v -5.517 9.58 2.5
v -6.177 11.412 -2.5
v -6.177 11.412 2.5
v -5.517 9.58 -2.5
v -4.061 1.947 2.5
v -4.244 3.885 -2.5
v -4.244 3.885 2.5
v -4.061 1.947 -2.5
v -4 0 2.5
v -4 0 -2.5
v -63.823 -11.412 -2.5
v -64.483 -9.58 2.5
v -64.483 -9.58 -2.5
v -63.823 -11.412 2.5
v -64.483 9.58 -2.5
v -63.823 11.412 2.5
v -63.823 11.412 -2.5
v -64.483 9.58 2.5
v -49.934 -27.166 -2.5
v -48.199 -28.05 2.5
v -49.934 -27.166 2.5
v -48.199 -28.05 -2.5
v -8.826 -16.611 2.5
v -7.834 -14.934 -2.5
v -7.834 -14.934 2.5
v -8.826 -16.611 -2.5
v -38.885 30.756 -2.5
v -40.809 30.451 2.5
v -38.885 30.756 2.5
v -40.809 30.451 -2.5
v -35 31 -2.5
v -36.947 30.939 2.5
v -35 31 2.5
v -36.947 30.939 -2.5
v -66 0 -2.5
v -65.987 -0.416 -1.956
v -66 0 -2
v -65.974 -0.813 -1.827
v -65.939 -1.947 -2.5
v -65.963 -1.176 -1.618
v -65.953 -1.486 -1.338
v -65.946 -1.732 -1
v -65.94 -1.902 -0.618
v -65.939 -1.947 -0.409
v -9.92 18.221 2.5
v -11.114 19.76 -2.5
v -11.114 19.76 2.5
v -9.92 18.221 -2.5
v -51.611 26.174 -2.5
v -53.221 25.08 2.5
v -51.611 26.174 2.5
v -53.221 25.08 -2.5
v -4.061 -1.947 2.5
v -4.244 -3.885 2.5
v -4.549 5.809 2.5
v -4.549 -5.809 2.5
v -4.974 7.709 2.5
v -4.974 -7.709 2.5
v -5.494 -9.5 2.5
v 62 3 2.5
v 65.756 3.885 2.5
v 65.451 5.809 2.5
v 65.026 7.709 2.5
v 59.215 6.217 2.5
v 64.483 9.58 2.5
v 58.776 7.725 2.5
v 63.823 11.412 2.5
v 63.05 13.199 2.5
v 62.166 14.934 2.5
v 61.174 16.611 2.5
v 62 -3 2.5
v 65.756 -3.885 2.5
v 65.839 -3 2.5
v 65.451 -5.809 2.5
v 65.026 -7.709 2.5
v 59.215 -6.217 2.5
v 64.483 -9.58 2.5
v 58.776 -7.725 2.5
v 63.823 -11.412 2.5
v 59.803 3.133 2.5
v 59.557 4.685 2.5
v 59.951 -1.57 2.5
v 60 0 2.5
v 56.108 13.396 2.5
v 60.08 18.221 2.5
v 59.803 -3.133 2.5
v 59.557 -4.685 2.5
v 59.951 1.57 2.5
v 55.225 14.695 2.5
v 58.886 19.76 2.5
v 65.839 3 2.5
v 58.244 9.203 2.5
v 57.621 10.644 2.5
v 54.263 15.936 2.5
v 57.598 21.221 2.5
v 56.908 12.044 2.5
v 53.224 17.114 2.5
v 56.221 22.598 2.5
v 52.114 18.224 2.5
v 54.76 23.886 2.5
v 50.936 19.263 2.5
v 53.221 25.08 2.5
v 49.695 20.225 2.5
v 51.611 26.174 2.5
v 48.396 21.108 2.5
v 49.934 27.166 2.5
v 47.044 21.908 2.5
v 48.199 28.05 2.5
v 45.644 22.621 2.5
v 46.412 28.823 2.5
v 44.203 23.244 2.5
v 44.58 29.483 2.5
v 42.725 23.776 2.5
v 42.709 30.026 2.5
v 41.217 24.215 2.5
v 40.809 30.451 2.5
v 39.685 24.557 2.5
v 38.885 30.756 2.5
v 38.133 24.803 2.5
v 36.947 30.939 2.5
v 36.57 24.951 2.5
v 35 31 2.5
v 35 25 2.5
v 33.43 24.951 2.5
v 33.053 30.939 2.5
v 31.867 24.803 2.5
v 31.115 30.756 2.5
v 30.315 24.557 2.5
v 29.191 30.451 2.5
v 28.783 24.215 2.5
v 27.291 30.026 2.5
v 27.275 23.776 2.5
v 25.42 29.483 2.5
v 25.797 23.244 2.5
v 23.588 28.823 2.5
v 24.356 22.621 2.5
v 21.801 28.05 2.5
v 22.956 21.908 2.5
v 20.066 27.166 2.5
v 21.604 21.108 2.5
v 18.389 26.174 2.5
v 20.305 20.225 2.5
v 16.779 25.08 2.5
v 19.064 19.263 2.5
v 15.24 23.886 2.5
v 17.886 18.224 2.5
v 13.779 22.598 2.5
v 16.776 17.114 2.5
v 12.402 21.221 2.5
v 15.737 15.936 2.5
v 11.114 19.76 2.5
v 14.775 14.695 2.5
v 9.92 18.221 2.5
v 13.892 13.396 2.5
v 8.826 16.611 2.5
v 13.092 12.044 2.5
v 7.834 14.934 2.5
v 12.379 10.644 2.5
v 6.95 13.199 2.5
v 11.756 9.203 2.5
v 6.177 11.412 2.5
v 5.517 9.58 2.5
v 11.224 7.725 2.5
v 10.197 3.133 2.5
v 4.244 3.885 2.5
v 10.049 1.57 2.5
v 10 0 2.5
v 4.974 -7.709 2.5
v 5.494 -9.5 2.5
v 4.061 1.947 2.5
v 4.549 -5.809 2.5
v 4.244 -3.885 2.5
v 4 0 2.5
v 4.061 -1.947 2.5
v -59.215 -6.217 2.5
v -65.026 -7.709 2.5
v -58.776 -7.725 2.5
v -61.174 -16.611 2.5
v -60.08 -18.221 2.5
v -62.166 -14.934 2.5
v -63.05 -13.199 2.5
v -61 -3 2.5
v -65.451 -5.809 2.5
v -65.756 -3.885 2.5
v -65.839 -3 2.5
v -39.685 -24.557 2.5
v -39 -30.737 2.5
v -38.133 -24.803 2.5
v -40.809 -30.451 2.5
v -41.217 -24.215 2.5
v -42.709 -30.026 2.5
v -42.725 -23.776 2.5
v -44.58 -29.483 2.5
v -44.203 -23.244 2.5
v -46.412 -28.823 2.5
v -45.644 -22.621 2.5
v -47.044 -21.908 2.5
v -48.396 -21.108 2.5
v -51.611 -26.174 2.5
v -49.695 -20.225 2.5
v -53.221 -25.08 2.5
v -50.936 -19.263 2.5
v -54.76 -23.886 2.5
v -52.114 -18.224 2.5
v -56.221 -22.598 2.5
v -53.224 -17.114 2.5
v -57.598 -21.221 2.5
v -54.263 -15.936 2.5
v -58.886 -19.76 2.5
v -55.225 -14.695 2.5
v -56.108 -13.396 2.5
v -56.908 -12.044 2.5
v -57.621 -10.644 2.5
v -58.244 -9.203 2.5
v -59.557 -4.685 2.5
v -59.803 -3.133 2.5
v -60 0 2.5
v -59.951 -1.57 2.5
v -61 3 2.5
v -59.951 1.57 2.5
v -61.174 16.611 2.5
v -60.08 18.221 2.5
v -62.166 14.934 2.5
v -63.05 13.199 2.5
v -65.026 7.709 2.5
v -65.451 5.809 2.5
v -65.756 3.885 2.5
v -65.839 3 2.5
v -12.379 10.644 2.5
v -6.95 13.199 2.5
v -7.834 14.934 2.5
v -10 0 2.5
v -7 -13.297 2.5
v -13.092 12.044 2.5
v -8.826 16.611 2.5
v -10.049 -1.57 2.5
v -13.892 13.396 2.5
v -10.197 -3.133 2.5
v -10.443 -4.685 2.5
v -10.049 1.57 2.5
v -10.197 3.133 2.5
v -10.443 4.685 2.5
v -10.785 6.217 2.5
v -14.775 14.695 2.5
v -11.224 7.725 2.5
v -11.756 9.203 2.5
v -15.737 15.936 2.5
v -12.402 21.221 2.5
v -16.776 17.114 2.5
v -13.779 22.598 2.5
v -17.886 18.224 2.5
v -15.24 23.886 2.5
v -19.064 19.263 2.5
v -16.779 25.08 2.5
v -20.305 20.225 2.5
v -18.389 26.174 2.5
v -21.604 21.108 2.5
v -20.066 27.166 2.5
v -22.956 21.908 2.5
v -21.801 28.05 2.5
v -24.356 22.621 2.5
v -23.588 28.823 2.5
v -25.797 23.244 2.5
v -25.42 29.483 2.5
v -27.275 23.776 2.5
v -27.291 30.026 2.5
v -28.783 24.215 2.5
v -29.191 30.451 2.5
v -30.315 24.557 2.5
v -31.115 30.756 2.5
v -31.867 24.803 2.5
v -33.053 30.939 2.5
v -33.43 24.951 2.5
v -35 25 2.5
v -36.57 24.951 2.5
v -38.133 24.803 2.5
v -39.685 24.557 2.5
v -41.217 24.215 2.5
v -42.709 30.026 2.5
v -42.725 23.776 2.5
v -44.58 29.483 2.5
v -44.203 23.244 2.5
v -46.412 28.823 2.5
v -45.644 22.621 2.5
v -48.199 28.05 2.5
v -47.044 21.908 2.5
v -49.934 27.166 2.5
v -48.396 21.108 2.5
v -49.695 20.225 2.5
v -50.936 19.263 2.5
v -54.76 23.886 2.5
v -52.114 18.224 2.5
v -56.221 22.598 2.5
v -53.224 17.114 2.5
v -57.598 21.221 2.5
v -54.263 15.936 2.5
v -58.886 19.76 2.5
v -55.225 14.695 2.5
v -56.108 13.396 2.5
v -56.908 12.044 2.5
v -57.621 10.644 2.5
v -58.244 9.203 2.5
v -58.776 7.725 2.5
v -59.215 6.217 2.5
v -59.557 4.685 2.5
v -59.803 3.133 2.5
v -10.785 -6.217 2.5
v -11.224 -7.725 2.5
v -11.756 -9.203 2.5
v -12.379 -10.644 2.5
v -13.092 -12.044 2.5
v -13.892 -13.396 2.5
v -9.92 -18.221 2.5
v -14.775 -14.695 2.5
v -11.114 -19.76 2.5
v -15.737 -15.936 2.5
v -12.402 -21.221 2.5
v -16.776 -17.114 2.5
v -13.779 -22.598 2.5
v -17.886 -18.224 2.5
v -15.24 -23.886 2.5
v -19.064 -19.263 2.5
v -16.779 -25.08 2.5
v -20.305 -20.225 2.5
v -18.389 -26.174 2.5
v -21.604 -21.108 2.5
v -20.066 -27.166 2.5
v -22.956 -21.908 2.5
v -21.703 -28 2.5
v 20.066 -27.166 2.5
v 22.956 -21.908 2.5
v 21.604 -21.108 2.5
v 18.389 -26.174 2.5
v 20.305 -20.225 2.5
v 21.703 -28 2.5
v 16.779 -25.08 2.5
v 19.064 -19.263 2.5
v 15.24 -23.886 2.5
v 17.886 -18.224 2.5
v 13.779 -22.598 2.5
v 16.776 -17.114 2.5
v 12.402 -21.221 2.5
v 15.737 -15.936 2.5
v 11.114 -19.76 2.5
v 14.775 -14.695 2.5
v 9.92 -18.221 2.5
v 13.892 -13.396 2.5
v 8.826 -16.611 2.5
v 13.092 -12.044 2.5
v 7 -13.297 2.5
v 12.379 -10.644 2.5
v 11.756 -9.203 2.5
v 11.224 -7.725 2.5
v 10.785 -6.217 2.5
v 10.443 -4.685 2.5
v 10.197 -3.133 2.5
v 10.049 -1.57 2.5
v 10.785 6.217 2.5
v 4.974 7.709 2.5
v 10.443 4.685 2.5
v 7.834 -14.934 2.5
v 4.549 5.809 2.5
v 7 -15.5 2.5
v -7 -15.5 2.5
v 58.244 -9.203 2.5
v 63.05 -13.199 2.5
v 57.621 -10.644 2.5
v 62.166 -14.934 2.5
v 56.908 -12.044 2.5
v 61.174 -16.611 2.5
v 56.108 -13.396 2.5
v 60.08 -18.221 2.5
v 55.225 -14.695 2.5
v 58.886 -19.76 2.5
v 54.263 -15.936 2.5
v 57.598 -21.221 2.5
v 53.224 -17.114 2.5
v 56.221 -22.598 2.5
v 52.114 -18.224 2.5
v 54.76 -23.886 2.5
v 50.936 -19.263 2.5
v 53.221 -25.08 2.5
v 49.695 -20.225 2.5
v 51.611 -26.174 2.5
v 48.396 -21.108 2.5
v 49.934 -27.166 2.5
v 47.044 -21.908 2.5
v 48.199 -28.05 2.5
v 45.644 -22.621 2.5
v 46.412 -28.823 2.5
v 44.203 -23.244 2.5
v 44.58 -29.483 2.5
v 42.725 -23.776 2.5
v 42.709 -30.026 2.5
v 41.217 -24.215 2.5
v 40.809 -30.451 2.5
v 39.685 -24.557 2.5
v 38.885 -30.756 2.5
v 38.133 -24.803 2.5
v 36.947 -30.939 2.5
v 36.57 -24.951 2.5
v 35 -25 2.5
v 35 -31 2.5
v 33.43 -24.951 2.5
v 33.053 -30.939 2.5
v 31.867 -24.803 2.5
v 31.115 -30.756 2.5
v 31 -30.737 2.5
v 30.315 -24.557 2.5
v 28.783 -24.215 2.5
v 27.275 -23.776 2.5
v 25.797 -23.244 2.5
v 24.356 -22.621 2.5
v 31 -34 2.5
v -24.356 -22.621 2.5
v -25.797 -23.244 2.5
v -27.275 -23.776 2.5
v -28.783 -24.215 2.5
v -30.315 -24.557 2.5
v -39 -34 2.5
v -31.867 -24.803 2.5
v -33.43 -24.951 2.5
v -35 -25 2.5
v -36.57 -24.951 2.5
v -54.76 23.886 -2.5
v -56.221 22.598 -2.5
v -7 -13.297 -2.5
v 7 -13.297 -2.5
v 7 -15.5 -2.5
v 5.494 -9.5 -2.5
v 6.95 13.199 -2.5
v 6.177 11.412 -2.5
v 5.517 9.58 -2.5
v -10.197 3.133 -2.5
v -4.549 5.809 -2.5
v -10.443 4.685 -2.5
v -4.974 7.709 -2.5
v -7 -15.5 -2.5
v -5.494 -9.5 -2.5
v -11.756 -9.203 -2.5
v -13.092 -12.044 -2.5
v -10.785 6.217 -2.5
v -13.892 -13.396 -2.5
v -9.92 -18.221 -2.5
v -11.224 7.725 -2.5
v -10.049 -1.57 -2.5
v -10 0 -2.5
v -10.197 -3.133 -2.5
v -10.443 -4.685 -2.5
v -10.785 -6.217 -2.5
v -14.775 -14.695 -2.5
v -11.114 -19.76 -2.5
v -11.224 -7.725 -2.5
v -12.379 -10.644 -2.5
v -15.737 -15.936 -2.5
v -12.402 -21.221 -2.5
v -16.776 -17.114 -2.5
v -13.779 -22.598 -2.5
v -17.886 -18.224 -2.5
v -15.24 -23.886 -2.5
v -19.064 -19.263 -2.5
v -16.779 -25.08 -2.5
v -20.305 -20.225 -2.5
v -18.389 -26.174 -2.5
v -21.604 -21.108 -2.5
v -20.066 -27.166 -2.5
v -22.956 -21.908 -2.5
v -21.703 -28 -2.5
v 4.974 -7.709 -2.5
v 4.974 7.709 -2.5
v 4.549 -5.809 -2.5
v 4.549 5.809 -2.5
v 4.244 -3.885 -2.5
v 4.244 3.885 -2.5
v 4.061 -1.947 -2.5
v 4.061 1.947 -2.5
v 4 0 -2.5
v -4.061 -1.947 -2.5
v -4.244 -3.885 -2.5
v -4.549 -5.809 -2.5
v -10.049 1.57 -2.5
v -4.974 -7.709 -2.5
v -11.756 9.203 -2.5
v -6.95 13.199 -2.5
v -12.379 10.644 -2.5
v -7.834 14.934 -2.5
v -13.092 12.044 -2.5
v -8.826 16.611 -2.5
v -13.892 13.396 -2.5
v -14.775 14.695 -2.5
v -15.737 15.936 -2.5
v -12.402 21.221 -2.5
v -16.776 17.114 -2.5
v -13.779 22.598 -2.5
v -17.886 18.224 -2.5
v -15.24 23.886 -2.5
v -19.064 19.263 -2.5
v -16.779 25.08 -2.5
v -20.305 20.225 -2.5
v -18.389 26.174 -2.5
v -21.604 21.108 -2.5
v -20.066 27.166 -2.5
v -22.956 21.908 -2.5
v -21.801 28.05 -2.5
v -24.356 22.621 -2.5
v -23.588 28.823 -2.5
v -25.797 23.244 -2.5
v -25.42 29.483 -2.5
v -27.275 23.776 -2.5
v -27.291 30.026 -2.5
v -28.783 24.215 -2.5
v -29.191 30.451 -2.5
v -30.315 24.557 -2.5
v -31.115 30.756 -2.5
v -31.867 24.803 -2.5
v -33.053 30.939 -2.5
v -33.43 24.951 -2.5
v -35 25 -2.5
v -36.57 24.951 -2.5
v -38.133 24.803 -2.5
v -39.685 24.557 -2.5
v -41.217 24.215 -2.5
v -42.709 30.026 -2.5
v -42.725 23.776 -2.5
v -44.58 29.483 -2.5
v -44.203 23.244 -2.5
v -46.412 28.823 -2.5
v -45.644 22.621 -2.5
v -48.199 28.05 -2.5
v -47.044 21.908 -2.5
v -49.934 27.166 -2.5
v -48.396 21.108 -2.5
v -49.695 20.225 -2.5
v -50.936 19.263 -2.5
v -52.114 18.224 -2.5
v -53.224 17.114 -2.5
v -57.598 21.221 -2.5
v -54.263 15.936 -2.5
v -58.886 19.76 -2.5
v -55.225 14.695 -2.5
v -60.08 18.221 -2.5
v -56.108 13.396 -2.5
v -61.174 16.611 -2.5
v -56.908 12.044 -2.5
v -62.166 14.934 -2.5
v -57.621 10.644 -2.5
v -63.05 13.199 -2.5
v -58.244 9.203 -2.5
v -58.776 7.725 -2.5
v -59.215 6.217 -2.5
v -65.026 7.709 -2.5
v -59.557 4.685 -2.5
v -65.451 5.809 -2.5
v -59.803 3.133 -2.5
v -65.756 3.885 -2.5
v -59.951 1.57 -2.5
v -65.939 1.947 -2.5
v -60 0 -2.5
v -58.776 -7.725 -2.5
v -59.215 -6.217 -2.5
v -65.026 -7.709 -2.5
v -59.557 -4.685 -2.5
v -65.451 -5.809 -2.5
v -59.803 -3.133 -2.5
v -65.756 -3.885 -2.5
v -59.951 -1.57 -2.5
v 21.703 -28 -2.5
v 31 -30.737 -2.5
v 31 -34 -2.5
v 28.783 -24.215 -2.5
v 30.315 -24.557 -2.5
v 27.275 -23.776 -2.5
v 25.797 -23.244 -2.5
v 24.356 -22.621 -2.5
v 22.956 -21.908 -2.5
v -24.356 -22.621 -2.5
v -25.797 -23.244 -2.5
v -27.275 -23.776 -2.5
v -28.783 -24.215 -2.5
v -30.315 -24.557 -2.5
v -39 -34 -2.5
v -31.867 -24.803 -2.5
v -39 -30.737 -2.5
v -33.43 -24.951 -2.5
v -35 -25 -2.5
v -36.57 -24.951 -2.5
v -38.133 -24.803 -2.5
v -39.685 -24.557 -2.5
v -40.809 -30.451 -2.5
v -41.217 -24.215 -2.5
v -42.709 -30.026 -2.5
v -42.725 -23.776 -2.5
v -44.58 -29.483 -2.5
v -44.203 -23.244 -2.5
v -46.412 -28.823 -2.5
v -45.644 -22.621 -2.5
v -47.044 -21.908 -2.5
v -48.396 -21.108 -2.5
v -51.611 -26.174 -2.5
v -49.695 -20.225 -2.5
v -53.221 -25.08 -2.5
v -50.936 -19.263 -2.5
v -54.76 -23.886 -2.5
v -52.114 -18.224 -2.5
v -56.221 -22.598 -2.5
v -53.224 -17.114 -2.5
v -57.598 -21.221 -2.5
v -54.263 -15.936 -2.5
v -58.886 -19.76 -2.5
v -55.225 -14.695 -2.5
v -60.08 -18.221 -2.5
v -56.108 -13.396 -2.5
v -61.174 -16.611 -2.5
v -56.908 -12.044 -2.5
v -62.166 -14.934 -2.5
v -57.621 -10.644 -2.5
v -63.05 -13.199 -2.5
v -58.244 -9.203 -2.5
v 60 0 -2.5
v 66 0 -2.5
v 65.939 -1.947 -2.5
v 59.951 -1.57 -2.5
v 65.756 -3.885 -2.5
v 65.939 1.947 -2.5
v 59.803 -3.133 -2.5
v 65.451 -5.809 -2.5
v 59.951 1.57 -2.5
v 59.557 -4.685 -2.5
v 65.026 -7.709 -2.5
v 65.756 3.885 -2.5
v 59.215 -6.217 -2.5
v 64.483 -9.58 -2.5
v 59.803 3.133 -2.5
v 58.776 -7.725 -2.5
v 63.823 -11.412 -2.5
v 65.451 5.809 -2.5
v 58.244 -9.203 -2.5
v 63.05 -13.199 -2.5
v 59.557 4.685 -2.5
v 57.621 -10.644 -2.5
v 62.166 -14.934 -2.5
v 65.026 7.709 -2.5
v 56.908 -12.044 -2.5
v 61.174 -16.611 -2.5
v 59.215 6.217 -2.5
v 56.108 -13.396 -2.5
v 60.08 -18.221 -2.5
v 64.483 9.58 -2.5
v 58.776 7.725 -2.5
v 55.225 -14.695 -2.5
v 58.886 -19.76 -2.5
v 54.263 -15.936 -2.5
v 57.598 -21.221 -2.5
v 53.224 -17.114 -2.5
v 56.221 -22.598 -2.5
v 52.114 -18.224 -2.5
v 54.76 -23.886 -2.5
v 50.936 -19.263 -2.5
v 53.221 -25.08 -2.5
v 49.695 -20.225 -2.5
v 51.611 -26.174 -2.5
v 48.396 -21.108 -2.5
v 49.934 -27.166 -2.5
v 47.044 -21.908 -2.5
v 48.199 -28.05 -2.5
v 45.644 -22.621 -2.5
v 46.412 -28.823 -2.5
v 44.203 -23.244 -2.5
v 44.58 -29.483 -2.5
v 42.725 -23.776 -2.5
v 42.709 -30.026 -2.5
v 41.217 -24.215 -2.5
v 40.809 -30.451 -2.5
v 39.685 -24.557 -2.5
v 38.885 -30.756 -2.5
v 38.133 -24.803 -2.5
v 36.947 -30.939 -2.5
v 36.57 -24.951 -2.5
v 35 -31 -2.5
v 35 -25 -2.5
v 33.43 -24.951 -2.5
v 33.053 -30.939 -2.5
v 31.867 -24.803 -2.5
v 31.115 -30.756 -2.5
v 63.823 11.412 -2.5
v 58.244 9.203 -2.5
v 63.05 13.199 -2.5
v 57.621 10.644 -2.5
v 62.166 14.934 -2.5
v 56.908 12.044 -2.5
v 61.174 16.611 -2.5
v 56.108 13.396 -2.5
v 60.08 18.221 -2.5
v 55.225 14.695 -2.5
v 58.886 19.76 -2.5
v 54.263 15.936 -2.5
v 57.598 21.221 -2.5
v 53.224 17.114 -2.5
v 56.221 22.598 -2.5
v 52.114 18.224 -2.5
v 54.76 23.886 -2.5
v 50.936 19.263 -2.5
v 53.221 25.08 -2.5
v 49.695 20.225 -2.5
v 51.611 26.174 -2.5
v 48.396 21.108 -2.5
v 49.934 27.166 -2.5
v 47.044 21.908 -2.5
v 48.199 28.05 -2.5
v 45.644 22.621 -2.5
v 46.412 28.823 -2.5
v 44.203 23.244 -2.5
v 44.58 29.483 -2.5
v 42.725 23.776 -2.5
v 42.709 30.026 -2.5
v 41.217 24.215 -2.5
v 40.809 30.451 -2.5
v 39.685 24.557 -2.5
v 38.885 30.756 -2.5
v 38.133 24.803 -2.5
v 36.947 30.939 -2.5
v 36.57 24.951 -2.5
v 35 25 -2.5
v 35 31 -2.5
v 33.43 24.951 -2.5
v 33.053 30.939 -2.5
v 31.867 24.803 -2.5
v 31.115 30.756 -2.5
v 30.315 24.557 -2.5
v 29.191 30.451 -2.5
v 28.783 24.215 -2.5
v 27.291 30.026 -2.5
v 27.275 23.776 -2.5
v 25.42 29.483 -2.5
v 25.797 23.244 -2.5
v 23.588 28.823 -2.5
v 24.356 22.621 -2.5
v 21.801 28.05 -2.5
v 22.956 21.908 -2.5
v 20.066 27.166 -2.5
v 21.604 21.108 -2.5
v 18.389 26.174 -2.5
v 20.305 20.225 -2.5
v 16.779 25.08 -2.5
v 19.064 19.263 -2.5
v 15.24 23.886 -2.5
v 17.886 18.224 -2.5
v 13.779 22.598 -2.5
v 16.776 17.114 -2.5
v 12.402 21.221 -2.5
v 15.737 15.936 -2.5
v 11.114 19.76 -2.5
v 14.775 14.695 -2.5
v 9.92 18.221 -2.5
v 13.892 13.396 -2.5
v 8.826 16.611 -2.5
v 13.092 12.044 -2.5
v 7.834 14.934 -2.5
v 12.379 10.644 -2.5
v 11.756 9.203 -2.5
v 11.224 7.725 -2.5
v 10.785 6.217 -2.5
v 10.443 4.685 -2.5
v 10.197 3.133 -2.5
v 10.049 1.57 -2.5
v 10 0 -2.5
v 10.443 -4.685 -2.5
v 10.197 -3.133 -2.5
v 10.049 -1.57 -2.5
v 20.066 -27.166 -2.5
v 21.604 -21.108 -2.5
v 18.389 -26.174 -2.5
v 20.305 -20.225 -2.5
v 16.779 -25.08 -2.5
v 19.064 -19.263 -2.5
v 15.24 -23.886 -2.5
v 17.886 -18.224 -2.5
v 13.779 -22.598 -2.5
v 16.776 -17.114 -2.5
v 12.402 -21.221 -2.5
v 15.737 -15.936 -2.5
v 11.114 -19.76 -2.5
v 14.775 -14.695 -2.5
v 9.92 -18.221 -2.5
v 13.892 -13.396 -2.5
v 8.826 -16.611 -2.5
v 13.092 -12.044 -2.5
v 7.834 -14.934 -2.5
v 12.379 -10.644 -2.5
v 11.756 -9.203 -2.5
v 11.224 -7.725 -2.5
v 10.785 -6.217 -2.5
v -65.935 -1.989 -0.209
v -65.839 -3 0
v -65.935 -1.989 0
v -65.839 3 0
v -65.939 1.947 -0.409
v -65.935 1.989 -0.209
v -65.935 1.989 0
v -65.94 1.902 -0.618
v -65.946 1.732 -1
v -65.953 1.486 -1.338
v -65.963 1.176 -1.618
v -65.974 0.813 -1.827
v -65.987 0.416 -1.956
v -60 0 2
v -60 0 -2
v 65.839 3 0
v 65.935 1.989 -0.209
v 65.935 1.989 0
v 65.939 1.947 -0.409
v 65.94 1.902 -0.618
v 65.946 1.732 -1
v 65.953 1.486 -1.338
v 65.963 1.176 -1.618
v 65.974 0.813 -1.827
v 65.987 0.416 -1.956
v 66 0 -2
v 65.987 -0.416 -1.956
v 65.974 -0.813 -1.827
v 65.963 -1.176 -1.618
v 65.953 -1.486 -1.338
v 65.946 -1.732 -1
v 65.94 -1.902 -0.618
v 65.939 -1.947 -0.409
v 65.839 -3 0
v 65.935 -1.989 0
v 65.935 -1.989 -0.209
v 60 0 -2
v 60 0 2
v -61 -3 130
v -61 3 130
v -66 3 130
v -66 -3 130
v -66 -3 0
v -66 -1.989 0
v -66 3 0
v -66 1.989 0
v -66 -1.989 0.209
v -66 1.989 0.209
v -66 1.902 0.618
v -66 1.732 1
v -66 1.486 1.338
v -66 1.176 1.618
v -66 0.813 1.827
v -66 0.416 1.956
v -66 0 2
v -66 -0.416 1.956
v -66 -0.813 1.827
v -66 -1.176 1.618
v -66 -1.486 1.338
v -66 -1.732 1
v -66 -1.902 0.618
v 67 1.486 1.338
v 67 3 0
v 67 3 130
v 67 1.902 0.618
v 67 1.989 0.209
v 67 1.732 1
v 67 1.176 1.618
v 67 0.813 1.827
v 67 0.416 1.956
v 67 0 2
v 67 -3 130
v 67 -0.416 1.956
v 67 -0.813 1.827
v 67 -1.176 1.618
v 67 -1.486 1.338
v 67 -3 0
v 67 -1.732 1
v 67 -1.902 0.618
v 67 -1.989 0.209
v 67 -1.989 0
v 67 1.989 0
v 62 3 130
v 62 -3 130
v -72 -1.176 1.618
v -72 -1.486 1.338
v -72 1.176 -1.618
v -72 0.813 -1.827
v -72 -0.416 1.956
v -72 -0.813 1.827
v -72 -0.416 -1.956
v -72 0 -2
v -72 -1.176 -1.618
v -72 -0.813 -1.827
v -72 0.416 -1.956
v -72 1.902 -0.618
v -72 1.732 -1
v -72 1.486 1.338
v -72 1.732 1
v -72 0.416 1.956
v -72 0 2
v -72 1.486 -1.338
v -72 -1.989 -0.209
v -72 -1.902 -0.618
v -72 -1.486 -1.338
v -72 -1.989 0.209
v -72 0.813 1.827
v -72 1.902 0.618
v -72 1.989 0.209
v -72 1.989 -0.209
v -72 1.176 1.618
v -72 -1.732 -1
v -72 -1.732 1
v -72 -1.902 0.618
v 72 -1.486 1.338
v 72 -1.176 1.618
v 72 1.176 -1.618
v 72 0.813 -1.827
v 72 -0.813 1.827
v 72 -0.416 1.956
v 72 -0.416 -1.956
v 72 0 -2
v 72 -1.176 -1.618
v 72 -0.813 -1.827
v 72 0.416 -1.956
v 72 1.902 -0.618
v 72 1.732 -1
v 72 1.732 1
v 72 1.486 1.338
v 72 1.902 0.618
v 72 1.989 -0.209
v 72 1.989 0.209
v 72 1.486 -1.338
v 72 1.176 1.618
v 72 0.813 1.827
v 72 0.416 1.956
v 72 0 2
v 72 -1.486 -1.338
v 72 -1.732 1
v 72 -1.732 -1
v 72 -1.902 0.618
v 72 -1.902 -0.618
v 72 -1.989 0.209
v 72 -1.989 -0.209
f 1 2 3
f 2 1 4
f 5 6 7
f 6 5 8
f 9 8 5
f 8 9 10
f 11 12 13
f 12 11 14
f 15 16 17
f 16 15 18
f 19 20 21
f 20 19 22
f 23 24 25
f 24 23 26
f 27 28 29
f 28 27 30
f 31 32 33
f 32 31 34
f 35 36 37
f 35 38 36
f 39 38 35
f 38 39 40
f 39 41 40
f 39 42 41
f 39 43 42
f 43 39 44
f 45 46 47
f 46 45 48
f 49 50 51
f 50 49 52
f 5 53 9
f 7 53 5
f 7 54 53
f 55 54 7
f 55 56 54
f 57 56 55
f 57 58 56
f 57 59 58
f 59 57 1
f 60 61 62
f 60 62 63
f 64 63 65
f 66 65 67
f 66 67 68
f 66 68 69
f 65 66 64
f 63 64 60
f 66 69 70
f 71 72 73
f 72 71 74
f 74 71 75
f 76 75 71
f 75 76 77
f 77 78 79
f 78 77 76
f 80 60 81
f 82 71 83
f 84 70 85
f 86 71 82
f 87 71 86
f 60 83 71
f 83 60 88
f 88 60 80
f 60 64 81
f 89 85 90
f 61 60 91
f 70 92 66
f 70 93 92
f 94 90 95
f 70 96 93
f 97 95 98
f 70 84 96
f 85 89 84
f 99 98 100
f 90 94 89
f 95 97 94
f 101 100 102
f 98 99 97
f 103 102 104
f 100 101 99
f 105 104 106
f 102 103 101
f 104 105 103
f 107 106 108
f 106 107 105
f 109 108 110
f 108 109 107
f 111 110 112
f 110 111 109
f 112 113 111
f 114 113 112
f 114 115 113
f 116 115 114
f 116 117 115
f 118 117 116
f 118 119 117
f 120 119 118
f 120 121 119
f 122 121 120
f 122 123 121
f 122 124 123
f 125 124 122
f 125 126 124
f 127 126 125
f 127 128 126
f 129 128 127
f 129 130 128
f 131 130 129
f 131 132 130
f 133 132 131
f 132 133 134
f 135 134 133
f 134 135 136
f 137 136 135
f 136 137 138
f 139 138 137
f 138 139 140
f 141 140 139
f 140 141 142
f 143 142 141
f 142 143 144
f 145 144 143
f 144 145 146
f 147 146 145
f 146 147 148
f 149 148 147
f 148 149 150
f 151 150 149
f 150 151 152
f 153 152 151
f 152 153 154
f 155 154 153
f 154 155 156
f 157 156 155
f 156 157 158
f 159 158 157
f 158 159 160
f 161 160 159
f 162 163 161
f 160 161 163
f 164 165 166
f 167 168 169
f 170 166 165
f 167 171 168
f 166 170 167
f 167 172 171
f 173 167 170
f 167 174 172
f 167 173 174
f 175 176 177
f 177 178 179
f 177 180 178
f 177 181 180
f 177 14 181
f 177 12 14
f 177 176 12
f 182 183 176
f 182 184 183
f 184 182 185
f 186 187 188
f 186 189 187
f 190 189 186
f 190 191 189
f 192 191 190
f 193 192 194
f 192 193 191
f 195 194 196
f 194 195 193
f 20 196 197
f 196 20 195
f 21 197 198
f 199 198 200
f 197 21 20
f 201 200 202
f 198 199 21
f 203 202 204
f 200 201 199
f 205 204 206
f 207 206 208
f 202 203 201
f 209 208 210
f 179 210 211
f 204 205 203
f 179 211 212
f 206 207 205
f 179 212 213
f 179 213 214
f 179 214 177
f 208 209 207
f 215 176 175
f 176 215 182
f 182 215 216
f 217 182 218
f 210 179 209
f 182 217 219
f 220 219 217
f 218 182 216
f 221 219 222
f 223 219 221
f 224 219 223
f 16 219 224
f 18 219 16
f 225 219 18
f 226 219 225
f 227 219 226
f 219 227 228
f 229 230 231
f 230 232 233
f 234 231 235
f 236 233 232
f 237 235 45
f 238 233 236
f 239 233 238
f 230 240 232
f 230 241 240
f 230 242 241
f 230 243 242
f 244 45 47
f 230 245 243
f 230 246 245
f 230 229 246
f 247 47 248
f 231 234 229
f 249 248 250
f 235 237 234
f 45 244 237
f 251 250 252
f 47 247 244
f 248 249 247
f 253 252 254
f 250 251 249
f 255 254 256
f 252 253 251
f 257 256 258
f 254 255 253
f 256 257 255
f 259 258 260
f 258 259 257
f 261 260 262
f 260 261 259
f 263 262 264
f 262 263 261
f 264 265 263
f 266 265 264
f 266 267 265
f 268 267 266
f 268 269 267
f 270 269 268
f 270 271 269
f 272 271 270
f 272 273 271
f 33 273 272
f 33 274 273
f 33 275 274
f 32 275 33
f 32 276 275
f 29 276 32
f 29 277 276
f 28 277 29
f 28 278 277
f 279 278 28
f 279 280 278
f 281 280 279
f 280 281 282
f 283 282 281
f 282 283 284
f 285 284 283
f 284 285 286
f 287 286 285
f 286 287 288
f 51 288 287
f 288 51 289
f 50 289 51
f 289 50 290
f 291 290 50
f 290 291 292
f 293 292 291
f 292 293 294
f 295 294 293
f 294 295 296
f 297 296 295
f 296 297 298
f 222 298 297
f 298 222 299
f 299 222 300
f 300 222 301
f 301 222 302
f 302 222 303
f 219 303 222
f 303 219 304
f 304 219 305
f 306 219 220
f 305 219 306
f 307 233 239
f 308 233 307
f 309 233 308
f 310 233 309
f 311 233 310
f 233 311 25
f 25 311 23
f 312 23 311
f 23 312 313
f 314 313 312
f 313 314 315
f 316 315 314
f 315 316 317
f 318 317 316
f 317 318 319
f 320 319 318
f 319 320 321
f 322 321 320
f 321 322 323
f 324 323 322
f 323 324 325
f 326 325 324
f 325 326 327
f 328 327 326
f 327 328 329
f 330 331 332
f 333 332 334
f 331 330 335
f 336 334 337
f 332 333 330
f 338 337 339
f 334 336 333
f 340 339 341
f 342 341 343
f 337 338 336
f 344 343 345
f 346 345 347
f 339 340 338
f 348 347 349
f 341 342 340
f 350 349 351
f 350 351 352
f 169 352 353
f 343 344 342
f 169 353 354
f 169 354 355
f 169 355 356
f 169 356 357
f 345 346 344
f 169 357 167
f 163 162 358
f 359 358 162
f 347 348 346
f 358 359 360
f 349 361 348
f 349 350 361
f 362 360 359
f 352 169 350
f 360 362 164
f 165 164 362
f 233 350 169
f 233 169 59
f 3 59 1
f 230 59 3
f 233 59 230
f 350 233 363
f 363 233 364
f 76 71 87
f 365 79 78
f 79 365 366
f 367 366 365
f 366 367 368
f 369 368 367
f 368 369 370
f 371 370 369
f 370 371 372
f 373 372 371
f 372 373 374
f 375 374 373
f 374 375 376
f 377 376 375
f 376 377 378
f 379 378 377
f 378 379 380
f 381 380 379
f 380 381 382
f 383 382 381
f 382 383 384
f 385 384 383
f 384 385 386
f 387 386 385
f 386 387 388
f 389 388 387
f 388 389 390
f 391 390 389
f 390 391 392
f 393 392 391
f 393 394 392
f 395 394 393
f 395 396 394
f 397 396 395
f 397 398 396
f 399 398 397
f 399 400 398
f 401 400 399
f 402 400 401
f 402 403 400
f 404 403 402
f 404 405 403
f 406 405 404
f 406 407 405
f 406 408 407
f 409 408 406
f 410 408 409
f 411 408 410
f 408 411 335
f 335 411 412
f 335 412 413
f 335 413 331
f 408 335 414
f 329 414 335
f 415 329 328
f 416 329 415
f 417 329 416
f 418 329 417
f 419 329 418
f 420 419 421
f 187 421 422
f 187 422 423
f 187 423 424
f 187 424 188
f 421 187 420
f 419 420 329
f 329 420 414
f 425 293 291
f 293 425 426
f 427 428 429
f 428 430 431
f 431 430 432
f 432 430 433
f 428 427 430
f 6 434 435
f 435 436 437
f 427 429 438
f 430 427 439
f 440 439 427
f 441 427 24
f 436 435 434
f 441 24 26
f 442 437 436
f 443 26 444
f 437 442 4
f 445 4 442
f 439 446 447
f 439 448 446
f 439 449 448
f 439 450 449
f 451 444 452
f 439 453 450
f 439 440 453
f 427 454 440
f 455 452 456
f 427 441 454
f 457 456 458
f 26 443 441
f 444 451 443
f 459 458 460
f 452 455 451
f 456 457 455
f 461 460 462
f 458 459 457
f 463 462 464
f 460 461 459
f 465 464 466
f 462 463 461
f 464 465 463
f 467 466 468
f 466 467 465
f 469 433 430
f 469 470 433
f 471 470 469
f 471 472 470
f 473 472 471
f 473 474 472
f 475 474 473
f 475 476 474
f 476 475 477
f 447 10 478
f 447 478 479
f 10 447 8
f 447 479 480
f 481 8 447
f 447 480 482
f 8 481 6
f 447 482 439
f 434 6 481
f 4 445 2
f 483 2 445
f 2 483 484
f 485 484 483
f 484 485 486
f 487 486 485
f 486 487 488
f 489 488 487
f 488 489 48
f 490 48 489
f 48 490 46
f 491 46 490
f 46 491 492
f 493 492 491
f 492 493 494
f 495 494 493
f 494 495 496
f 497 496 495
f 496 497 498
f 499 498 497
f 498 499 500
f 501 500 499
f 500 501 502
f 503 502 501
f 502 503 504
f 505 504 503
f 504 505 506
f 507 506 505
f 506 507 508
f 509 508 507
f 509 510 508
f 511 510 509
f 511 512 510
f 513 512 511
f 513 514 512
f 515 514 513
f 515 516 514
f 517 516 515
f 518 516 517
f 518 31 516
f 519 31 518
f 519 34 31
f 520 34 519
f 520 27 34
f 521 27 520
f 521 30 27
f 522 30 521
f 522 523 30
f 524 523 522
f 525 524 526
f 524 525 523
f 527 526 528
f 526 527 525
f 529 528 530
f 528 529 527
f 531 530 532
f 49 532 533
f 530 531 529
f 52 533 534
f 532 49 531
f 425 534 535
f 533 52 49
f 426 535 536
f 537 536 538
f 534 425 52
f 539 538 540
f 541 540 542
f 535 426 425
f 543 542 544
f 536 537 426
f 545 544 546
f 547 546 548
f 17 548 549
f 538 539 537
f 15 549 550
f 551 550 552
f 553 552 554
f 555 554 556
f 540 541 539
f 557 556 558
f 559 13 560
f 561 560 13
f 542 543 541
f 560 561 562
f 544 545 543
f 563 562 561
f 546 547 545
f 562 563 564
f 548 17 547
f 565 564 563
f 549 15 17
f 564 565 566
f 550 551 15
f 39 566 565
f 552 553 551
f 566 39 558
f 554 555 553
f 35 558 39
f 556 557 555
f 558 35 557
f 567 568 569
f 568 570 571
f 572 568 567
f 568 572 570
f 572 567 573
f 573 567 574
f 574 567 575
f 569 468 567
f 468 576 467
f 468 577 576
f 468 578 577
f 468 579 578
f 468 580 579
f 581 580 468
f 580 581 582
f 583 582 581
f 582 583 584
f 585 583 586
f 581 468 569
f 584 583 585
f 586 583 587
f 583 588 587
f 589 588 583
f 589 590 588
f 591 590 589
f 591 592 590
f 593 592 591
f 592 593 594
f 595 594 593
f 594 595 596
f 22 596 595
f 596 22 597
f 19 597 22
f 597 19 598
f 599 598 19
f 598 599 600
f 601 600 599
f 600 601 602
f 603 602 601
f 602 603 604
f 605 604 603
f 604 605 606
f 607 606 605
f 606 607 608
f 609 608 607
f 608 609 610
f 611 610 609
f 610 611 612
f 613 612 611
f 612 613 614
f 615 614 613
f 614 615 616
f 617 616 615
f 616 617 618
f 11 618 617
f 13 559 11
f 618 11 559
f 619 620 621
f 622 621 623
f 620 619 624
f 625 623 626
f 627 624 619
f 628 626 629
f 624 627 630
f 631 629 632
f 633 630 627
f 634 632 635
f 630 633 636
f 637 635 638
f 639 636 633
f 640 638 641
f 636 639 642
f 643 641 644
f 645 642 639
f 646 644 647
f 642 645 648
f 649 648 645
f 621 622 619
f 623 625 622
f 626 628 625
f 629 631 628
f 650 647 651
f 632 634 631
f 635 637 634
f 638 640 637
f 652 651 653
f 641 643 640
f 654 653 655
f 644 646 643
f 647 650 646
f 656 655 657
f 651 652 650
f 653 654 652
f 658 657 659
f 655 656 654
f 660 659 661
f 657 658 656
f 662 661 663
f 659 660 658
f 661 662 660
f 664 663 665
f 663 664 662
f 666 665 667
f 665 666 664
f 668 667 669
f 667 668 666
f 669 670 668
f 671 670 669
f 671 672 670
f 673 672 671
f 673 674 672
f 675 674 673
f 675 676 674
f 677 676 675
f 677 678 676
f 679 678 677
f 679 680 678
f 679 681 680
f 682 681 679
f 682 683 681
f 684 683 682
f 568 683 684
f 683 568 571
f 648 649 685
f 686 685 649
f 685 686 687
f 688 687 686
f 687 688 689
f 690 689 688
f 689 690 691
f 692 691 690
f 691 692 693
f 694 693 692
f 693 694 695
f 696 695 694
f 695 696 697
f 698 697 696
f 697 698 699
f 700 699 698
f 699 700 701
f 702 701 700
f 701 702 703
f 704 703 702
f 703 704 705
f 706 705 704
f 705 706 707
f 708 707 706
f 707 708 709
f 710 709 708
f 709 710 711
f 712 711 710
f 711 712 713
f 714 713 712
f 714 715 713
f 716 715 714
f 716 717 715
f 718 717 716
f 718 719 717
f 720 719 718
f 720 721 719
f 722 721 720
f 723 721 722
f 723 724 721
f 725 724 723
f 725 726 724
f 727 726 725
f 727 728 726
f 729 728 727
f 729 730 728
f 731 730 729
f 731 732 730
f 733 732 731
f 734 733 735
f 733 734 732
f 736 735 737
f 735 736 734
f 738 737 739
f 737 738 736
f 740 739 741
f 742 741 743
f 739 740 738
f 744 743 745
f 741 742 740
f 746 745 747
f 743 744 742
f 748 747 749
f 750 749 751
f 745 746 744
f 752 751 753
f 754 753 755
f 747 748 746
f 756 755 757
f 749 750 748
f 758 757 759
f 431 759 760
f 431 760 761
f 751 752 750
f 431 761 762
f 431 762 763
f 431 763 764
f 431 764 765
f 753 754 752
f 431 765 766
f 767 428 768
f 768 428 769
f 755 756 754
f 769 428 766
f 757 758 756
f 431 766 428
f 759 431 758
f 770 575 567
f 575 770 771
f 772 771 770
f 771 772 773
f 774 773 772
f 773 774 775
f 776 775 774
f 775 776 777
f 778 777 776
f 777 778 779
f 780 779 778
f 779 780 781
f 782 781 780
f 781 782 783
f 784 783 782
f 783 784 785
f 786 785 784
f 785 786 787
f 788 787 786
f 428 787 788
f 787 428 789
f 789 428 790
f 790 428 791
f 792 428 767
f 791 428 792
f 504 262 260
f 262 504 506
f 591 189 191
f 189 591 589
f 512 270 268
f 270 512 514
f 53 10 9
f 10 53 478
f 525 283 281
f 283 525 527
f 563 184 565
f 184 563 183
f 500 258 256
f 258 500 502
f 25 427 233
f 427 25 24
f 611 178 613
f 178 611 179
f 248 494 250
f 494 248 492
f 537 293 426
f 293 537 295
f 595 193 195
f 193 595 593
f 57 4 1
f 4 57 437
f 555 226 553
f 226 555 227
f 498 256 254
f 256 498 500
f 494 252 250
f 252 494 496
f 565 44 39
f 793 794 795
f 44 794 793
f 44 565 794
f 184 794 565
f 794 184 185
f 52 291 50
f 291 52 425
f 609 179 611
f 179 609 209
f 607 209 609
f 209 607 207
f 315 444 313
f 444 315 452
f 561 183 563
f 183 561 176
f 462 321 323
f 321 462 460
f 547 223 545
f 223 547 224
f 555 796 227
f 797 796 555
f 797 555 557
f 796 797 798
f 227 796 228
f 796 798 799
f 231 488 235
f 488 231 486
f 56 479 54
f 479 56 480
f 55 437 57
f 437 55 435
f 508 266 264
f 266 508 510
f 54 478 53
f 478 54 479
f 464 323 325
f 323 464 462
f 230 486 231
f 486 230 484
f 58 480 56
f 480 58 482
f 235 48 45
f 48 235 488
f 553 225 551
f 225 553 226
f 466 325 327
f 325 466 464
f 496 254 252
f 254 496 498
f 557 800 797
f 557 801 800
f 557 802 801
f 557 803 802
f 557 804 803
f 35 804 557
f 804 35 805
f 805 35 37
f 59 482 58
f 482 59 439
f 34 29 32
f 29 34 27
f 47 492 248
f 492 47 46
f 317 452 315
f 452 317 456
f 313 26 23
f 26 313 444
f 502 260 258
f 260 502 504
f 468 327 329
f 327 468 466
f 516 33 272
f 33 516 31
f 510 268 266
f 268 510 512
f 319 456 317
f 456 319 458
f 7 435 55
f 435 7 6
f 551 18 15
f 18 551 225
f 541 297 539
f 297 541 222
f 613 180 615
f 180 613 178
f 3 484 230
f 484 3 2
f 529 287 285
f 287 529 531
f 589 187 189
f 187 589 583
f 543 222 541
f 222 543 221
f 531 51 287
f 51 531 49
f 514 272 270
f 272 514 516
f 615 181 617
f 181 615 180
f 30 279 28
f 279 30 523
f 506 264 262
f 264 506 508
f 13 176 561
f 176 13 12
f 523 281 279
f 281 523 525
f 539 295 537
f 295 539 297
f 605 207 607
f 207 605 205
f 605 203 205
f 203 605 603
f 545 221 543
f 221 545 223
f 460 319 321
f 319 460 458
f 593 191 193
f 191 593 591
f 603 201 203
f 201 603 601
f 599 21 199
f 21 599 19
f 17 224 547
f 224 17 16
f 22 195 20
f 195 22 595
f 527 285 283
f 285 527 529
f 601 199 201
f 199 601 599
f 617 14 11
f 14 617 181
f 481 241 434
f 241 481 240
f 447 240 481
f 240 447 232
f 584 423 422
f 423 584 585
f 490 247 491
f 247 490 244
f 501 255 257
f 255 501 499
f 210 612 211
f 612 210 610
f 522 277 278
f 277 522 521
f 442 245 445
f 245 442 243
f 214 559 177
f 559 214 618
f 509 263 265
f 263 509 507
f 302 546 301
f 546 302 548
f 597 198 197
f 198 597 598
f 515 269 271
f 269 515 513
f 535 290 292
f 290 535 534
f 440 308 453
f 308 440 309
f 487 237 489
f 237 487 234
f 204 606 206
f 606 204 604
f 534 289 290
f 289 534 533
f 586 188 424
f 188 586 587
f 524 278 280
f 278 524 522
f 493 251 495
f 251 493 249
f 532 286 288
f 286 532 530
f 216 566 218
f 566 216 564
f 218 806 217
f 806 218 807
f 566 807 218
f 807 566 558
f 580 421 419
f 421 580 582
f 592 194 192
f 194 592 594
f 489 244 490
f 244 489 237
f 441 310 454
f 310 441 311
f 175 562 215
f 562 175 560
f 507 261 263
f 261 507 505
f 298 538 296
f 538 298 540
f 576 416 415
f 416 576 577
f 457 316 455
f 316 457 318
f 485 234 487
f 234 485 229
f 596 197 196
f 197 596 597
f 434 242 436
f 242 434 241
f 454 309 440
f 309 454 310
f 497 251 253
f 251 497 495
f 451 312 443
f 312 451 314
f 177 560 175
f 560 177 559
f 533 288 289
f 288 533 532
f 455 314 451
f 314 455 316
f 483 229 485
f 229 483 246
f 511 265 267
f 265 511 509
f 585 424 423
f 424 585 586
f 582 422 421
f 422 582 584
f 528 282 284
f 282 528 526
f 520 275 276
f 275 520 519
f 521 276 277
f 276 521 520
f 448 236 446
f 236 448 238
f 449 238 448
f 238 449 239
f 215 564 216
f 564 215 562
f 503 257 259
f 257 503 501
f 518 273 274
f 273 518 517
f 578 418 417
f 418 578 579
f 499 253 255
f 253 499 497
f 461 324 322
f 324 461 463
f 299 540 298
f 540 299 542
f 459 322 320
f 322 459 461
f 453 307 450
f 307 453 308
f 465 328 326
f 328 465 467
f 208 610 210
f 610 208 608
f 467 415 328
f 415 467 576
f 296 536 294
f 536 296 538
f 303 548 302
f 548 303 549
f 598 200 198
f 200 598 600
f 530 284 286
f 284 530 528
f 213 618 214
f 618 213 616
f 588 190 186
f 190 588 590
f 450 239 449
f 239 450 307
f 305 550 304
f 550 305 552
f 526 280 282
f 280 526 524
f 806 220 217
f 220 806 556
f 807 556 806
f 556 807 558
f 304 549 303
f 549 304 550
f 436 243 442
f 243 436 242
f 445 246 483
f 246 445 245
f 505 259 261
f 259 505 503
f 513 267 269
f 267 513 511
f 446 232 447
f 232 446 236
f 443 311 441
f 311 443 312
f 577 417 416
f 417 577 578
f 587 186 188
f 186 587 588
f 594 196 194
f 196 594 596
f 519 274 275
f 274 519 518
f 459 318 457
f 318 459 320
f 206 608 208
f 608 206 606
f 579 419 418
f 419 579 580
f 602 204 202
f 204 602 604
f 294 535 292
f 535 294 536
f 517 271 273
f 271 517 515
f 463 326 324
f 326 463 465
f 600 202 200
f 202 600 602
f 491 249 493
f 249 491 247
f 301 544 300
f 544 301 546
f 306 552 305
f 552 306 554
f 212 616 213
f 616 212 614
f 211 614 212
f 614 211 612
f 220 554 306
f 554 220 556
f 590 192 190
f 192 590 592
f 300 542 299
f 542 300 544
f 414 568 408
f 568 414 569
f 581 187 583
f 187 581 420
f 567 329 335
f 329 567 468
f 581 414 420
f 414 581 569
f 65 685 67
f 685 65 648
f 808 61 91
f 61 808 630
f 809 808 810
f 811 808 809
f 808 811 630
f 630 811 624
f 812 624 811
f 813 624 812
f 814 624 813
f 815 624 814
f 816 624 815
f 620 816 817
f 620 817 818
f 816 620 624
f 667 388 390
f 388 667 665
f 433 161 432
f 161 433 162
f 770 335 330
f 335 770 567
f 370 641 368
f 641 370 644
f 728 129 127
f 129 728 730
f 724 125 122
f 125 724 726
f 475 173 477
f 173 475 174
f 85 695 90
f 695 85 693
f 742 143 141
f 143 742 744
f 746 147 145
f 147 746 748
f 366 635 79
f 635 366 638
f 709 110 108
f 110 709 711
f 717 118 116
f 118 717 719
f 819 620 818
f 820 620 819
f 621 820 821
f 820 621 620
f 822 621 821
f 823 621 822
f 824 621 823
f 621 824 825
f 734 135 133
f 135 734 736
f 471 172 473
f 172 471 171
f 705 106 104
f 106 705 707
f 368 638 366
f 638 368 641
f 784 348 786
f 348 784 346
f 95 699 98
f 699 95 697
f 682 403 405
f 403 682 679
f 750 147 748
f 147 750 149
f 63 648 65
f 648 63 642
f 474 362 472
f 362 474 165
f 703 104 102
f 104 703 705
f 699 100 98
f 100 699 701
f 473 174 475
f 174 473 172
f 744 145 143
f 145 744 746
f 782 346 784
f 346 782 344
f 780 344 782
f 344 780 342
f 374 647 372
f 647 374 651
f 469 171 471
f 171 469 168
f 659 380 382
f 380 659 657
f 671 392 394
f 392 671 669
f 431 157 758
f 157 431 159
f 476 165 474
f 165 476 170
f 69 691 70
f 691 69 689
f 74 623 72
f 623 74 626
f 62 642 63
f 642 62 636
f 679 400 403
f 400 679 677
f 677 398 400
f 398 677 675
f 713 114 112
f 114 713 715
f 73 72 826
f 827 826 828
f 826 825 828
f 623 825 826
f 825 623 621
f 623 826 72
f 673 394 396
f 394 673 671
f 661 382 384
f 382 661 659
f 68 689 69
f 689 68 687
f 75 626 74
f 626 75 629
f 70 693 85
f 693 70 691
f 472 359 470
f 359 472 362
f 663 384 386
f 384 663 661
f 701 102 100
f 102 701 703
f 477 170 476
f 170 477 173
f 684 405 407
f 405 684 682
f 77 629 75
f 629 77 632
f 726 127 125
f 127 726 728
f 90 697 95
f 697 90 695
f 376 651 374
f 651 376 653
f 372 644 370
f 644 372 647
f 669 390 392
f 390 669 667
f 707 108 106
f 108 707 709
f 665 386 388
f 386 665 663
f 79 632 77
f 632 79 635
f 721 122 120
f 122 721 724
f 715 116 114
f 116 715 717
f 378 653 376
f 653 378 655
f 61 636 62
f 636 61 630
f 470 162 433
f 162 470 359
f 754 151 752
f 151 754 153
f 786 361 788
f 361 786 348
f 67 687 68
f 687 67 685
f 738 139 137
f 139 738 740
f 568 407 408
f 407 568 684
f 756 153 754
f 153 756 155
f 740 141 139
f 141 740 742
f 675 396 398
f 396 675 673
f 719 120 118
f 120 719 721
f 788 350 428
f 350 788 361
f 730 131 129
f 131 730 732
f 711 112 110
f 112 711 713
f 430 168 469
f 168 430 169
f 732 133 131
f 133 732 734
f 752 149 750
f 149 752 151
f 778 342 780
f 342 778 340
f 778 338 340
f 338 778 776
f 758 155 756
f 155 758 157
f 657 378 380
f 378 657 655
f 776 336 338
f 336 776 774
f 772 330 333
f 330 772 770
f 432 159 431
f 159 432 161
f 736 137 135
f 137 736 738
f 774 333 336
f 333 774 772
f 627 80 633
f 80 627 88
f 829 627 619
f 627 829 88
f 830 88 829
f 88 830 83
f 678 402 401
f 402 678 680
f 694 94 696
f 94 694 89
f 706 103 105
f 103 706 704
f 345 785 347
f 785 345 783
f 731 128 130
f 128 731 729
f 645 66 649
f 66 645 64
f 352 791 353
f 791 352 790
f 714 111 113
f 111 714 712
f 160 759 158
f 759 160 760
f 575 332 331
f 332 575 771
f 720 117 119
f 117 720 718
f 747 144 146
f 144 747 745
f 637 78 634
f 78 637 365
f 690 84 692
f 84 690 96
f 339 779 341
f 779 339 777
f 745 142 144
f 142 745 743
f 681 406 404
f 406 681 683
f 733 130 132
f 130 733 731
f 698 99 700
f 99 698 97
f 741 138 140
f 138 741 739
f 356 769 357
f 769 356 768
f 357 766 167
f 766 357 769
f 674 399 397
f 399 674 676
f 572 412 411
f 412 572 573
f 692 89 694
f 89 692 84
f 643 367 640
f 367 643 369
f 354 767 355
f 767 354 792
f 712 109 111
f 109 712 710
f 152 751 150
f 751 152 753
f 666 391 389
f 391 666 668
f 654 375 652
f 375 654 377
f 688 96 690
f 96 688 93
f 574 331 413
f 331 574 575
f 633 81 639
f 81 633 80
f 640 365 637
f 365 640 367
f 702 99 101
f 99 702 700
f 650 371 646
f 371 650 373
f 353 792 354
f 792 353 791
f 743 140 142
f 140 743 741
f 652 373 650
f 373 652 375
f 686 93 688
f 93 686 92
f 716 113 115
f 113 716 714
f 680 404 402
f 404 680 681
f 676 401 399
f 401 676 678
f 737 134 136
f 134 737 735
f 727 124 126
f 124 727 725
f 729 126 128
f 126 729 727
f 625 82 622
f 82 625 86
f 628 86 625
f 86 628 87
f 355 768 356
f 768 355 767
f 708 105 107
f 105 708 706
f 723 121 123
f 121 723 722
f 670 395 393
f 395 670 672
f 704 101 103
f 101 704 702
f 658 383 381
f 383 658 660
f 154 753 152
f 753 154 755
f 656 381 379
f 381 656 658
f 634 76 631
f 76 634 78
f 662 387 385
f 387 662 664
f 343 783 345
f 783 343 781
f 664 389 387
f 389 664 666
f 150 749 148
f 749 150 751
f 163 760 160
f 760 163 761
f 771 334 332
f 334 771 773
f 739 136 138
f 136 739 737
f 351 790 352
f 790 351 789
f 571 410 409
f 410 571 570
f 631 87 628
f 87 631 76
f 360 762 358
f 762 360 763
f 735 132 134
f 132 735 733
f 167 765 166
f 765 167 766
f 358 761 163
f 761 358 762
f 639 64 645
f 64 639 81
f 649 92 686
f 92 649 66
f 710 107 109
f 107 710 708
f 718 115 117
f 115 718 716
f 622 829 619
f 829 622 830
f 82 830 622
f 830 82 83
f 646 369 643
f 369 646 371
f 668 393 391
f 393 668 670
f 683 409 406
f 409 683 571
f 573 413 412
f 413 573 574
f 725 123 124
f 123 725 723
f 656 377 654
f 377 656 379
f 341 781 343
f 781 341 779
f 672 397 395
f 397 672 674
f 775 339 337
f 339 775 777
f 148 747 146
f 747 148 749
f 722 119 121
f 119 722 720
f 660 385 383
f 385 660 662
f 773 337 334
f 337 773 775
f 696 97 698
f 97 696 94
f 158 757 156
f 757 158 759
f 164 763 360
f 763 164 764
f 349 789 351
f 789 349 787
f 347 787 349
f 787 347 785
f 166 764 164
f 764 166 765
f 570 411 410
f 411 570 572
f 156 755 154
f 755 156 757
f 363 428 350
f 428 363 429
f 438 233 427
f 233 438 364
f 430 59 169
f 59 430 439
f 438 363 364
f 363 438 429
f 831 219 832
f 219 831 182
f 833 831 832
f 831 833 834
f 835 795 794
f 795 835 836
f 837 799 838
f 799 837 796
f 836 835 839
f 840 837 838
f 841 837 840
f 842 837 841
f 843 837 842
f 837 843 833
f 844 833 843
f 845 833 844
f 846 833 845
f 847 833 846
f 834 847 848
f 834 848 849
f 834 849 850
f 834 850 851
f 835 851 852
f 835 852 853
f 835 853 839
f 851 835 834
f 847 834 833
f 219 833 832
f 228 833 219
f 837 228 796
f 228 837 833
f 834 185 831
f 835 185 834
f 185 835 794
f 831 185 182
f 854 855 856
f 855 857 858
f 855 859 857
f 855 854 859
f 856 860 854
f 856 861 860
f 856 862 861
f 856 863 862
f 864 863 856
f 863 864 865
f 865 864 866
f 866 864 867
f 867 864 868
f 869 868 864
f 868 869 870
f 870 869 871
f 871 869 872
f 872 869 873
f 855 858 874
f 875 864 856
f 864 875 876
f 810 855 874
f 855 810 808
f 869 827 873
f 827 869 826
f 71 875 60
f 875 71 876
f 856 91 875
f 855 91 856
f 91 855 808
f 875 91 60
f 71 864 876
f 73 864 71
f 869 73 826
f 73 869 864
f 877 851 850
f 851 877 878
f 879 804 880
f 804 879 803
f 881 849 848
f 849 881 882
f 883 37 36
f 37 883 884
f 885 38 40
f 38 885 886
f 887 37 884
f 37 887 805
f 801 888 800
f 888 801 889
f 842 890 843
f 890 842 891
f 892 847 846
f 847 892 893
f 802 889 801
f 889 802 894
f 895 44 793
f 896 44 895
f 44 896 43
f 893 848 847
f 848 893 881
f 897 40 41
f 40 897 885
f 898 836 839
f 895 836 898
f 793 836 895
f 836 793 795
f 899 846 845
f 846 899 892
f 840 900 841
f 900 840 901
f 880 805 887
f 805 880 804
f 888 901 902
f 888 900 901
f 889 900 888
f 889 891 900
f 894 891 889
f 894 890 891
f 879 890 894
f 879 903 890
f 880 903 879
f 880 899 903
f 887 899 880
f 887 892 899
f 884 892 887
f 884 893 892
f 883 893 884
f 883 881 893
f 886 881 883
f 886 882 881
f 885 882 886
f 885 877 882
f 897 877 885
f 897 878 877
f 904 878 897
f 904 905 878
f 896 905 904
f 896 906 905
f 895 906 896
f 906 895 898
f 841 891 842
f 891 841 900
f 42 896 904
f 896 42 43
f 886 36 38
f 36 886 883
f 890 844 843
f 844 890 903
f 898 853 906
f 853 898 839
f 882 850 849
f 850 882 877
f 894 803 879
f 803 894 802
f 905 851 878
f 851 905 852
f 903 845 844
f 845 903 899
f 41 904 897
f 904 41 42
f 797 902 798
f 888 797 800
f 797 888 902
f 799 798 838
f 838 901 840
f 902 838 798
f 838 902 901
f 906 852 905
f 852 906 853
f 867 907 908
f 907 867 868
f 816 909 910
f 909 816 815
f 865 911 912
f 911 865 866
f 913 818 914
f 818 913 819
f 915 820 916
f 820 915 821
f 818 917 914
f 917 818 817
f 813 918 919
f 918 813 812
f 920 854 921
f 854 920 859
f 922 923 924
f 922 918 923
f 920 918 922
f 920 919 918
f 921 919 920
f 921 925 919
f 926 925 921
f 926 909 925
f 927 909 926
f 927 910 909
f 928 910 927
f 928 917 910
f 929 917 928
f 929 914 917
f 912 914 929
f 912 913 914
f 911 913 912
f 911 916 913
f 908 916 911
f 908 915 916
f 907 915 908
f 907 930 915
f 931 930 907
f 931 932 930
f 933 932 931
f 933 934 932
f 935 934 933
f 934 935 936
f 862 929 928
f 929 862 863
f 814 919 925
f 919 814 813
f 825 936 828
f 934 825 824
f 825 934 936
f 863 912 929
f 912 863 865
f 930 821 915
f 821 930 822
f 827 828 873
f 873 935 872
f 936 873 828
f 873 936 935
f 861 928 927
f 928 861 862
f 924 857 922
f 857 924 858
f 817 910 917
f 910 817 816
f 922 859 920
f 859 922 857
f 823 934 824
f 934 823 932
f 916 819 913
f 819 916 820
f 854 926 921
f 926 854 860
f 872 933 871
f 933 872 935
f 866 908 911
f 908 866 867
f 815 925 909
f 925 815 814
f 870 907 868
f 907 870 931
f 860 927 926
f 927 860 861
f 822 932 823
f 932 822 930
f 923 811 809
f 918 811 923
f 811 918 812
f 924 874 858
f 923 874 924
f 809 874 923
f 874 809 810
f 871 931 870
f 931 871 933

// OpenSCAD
// ARMAÇÃO DE ÓCULOS COM LENTES REDONDAS
// Configurações personalizáveis

diametro_lente = 50;           // Diâmetro das lentes
distancia_entre_lentes = 70;   // Distância entre os centros das lentes
largura_estrutura = 6;         // Largura da estrutura que segura as lentes
comprimento_aste = 130;        // Comprimento das hastes
espessura_armacao = 5;         // Espessura do material da armação
angulo_aste = 15;              // Ângulo das hastes (graus)

// ========== CÁLCULOS DERIVADOS ==========
raio_lente = diametro_lente / 2;
raio_externo = raio_lente + largura_estrutura;

// ========== MÓDULOS PRINCIPAIS ==========

// Aro para lente
module aro_lente(centro_x) {
    color("Yellow")
    translate([centro_x, 0, 0]) {
        difference() {
            // Aro externo
            cylinder(h = espessura_armacao, r = raio_externo, center = true, $fn = 100);
            
            // Corte interno para lente
            cylinder(h = espessura_armacao + 1, r = raio_lente, center = true, $fn = 100);
        }
        color("Yellow")
        // Ponte de conexão entre aros
        if (centro_x < 0) {
            translate([raio_externo, -raio_externo, 0])
            cube([distancia_entre_lentes , 
                  largura_estrutura, espessura_armacao], center = true);
        }
    }
}

// Ponte nasal
module ponte_nasal() {
    largura_ponte = distancia_entre_lentes - diametro_lente - largura_estrutura;
    color("Yellow")
    translate([0, -raio_externo/2 + largura_estrutura/2, 0])
    cube([largura_ponte, largura_estrutura, espessura_armacao], center = true);
}

// Haste dos óculos
module haste(lado) {
    // lado: -1 para esquerda, 1 para direita
    
    x_inicio = -(distancia_entre_lentes/2 + raio_externo);
    
    angulo = 180;
color("Yellow")
    translate([x_inicio, -largura_estrutura/2, 0])
    rotate([0, 0, 0])
        
    cube([ espessura_armacao,largura_estrutura, comprimento_aste], center = false);
}
module haste2(lado) {
    // lado: -1 para esquerda, 1 para direita
    
    x_inicio = -(-distancia_entre_lentes+espessura_armacao+(largura_estrutura/2) );
    
    angulo = 180;
color("Yellow")
    translate([x_inicio, -largura_estrutura/2, 0])
    rotate([0, 0, 0])
    
    
    cube([ espessura_armacao,largura_estrutura, comprimento_aste], center = false);
}

// Sistema de dobradiça (opcional)
module dobradica(lado) {
    x_pos = lado * (distancia_entre_lentes/2 + raio_externo);
    color("Yellow")
    translate([x_pos, 0, 0])
    rotate([0, 90, 0])
    cylinder(h = largura_estrutura * 2, r = 2, center = true, $fn = 30);
}

// ========== MONTAGEM FINAL ==========
union() {
    // Aro esquerdo
    aro_lente(-distancia_entre_lentes/2);
    
    // Aro direito
    aro_lente(distancia_entre_lentes/2);
    
    // Ponte nasal
    ponte_nasal();
    
    // Hastes
    haste(-1); // Haste esquerda
    haste2(1);  // Haste direita
    
    // Dobradiças
    dobradica(-1);
    dobradica(1);
}

// ========== VISUALIZAÇÃO DAS LENTES ==========
// Lente esquerda (visualização)
/*
translate([-distancia_entre_lentes/2, 0, 0])
color("Yellow", 0.3)
cylinder(h = 1, r = raio_lente, center = true, $fn = 100);
*/
// Lente direita (visualização)
/*
translate([distancia_entre_lentes/2, 0, 0])
color("Yellow", 0.3)
cylinder(h = 1, r = raio_lente, center = true, $fn = 100);
*/
// ========== INFORMAÇÕES TÉCNICAS ==========
echo("=== ESPECIFICAÇÕES DOS ÓCULOS ===");
echo(str("Diâmetro das lentes: ", diametro_lente, "mm"));
echo(str("Distância entre lentes: ", distancia_entre_lentes, "mm"));
echo(str("Largura da estrutura: ", largura_estrutura, "mm"));
echo(str("Comprimento das hastes: ", comprimento_aste, "mm"));

/*
INSTRUÇÕES DE USO E PERSONALIZAÇÃO:

1. PERSONALIZAÇÃO:
   - Ajuste 'diametro_lente' para o tamanho das suas lentes
   - Modifique 'distancia_entre_lentes' para sua distância interpupilar
   - Altere 'comprimento_aste' para hastes mais longas/curtas
   - Ajuste 'angulo_aste' para melhor encaixe atrás da orelha

2. IMPRESSÃO 3D:
   - Imprima com a parte frontal na cama
   - Use preenchimento de 20-25%
   - Velocidade moderada para detalhes precisos

3. MONTAGEM:
   - Cole as lentes nos aros
   - Aqueça as hastes para ajuste personalizado
   - Adicione plaquetas nas pontas das hastes para conforto

DICAS:
- Para óculos de sol, aumente 'espessura_armacao' para 6-7mm
- Para lentes de grau, verifique o diâmetro exato com seu oftalmologista
- Para melhor ajuste, imprima em nylon ou PETG flexível
*/
